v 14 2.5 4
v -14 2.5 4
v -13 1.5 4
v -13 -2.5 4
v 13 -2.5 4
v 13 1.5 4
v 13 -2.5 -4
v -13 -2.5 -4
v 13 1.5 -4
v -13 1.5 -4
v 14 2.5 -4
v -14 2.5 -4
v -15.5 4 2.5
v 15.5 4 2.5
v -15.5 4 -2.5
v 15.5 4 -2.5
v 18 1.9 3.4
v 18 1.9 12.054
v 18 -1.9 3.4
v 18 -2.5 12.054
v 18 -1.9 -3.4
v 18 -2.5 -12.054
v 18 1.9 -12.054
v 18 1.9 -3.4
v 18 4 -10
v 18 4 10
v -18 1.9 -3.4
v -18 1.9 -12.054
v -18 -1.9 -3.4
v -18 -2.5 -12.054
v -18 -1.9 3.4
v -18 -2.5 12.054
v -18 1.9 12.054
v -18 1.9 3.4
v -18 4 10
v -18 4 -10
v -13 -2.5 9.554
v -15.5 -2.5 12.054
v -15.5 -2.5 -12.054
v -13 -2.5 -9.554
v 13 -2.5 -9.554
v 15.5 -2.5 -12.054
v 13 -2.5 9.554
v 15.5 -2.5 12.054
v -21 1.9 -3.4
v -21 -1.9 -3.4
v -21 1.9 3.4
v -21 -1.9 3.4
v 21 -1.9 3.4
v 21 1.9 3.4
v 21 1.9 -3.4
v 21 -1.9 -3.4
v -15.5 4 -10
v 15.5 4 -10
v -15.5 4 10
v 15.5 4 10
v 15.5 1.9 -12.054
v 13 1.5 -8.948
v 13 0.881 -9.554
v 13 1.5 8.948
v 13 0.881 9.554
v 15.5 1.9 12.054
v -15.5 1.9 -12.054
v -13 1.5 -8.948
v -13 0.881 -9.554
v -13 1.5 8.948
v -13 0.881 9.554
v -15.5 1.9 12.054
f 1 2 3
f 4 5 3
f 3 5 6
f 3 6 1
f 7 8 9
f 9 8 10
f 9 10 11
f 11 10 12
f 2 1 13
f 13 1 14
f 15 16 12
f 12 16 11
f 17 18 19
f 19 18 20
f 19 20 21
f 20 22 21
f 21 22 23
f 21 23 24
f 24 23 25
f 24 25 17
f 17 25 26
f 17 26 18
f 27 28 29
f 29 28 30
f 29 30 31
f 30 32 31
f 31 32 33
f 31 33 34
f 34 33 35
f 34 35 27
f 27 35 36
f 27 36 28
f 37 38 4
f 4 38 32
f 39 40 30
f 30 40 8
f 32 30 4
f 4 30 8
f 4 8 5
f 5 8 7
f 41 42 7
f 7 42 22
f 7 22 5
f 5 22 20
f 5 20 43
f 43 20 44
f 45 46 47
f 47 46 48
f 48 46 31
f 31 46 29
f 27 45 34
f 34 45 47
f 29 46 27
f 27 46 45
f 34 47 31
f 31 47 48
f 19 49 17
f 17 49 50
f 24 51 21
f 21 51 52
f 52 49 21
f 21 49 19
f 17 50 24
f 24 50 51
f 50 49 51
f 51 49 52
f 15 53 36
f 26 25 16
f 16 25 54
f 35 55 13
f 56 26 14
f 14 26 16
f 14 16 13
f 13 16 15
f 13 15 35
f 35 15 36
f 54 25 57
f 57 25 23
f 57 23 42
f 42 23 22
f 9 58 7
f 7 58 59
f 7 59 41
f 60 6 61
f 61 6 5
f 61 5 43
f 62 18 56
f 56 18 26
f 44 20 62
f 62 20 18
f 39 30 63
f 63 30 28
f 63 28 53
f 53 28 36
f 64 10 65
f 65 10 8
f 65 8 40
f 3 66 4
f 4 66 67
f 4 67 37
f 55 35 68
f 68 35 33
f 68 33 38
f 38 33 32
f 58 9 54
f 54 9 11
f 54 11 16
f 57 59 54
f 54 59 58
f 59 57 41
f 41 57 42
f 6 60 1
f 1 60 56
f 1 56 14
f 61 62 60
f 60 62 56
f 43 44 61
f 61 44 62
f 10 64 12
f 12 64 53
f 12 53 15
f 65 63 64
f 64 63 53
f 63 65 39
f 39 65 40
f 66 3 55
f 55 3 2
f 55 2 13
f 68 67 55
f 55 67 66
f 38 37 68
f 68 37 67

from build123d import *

# Parameters (mm, degrees)
BOSS_EXTRUDE1_DEPTH      = 2.5
BOSS_EXTRUDE1_DEPTH_BACK = 2.5
SKETCH1_W                = 36
SKETCH1_H                = 8
BOSS_EXTRUDE2_DEPTH      = 1.9
BOSS_EXTRUDE2_DEPTH_BACK = 1.9
SKETCH2_W                = 42
SKETCH2_H                = 6.8
BOSS_EXTRUDE4_DEPTH      = 18
BOSS_EXTRUDE4_DEPTH_BACK = 18
BOSS_EXTRUDE5_DEPTH      = 5
CHAMFER1_SIZE            = 2.5


with BuildPart() as part:
    # Sketch1 → Boss-Extrude1 (new, two sides: drawn at the far end of the back side and taken through both)
    with BuildSketch(Plane(origin=(0, 0, 0), x_dir=(1, 0, 0), z_dir=(0, 1, 0)).offset(-BOSS_EXTRUDE1_DEPTH_BACK)):
        Rectangle(SKETCH1_W, SKETCH1_H)
    extrude(amount=BOSS_EXTRUDE1_DEPTH + BOSS_EXTRUDE1_DEPTH_BACK)

    # Sketch2 → Boss-Extrude2 (add, two sides: drawn at the far end of the back side and taken through both)
    with BuildSketch(Plane(origin=(0, 0, 0), x_dir=(1, 0, 0), z_dir=(0, 1, 0)).offset(-BOSS_EXTRUDE2_DEPTH_BACK)):
        Rectangle(SKETCH2_W, SKETCH2_H)
    extrude(amount=BOSS_EXTRUDE2_DEPTH + BOSS_EXTRUDE2_DEPTH_BACK)

    # Sketch3 → Boss-Extrude4 (add, two sides: drawn at the far end of the back side and taken through both)
    with BuildSketch(Plane(origin=(0, 0, 0), x_dir=(0, 0, -1), z_dir=(1, 0, 0)).offset(-BOSS_EXTRUDE4_DEPTH_BACK)):
        Polygon((-4, 2.5), (-2.5, 4), (2.5, 4), (4, 2.5), align=None)
    extrude(amount=BOSS_EXTRUDE4_DEPTH + BOSS_EXTRUDE4_DEPTH_BACK)

    # Sketch4 → Boss-Extrude5 (add)
    with BuildSketch(Plane(origin=(18, 0, 0), x_dir=(0, 0, -1), z_dir=(1, 0, 0))):
        Polygon((10, 4), (-10, 4), (-12.054026971, 1.9), (-12.054026971, -2.5), (12.054026971, -2.5), (12.054026971, 1.9), align=None)
    boss_extrude5 = extrude(amount=-BOSS_EXTRUDE5_DEPTH)

    # Mirror1: Boss-Extrude5 across plane
    add(boss_extrude5.mirror(Plane(origin=(0, 0, 0), x_dir=(0, 0, 1), z_dir=(1, 0, 0))))

    # Chamfer1
    # the kernel refuses this chamfer: 2.5 mm, written as the material it takes off along each edge
    with BuildSketch(Plane(origin=(13, -8.92920747, -12.054026971), x_dir=(-0.027495876610586317, 0, 0.9996219169112968), z_dir=(0, 1, 0)), Plane(origin=(13, 8.32920747, 12.054026971), x_dir=(-0.027495876610586317, 0, -0.9996219169112968), z_dir=(0, -1, 0))) as chamfer1_piece_1:
        Polygon((CHAMFER1_SIZE * 0.999621916911, CHAMFER1_SIZE * 0.0274958766106), (-CHAMFER1_SIZE * 0.0274958766106, CHAMFER1_SIZE * 0.999621916911), (0, 0), align=None)
    extrude(amount=17.25841494, mode=Mode.SUBTRACT)
    with BuildSketch(Plane(origin=(13, 4, -16.42920747), x_dir=(-0.027495876610586317, -0.9996219169112968, 0), z_dir=(0, 0, 1))) as chamfer1_piece_2_section:
        Polygon((CHAMFER1_SIZE * 0.999621916911, CHAMFER1_SIZE * 0.0274958766106), (-CHAMFER1_SIZE * 0.0274958766106, CHAMFER1_SIZE * 0.999621916911), (0, 0), align=None)
    chamfer1_piece_2 = extrude(amount=20.35841494, mode=Mode.PRIVATE)
    chamfer1_piece_2 = split(chamfer1_piece_2, bisect_by=Plane(origin=(13.827805958, -0.281636431, -6.781636431), z_dir=(0, 0.7071067811865474, -0.7071067811865478)), keep=Keep.TOP, mode=Mode.PRIVATE)
    chamfer1_piece_2 = split(chamfer1_piece_2, bisect_by=Plane(origin=(13.827805958, 3.181857543, -4), z_dir=(0, 0, -1)), keep=Keep.TOP, mode=Mode.PRIVATE)
    add(chamfer1_piece_2, mode=Mode.SUBTRACT)
    with BuildSketch(Plane(origin=(13, 4, -16.42920747), x_dir=(-0.027495876610586317, -0.9996219169112968, 0), z_dir=(0, 0, 1))) as chamfer1_piece_3_section:
        Polygon((CHAMFER1_SIZE * 0.999621916911, CHAMFER1_SIZE * 0.0274958766106), (-CHAMFER1_SIZE * 0.0274958766106, CHAMFER1_SIZE * 0.999621916911), (0, 0), align=None)
    chamfer1_piece_3 = extrude(amount=20.35841494, mode=Mode.PRIVATE)
    chamfer1_piece_3 = split(chamfer1_piece_3, bisect_by=Plane(origin=(14.055981956, 3.329802403, -3.170197597), z_dir=(0, 0.7071067811865474, -0.7071067811865478)), keep=Keep.TOP, mode=Mode.PRIVATE)
    chamfer1_piece_3 = split(chamfer1_piece_3, bisect_by=Plane(origin=(14.055981956, 3.606403204, -4), z_dir=(0, 0, 1)), keep=Keep.TOP, mode=Mode.PRIVATE)
    add(chamfer1_piece_3, mode=Mode.SUBTRACT)
    with BuildSketch(Plane(origin=(13, 4, -16.42920747), x_dir=(-0.027495876610586317, -0.9996219169112968, 0), z_dir=(0, 0, 1))) as chamfer1_piece_4_section:
        Polygon((CHAMFER1_SIZE * 0.999621916911, CHAMFER1_SIZE * 0.0274958766106), (-CHAMFER1_SIZE * 0.0274958766106, CHAMFER1_SIZE * 0.999621916911), (0, 0), align=None)
    chamfer1_piece_4 = extrude(amount=20.35841494, mode=Mode.PRIVATE)
    chamfer1_piece_4 = split(chamfer1_piece_4, bisect_by=Plane(origin=(13.178553406, 2.081808313, -4.418191687), z_dir=(0, -0.7071067811865474, 0.7071067811865478)), keep=Keep.TOP, mode=Mode.PRIVATE)
    chamfer1_piece_4 = split(chamfer1_piece_4, bisect_by=Plane(origin=(13.178553406, 1.942411084, -4), z_dir=(0, 0, -1)), keep=Keep.TOP, mode=Mode.PRIVATE)
    add(chamfer1_piece_4, mode=Mode.SUBTRACT)
    with BuildSketch(Plane(origin=(13, 4, -16.42920747), x_dir=(-0.027495876610586317, -0.9996219169112968, 0), z_dir=(0, 0, 1))) as chamfer1_piece_5_section:
        Polygon((CHAMFER1_SIZE * 0.999621916911, CHAMFER1_SIZE * 0.0274958766106), (-CHAMFER1_SIZE * 0.0274958766106, CHAMFER1_SIZE * 0.999621916911), (0, 0), align=None)
    chamfer1_piece_5 = extrude(amount=20.35841494, mode=Mode.PRIVATE)
    chamfer1_piece_5 = split(chamfer1_piece_5, bisect_by=Plane(origin=(14.06552613, 3.360440838, 3.139559162), z_dir=(0, 0.7071067811865476, 0.7071067811865476)), keep=Keep.TOP, mode=Mode.PRIVATE)
    add(chamfer1_piece_5, mode=Mode.SUBTRACT)
    with BuildSketch(Plane(origin=(13, 4, -3.92920747), x_dir=(-0.027495876610586317, -0.9996219169112968, 0), z_dir=(0, 0, 1))) as chamfer1_piece_6_section:
        Polygon((CHAMFER1_SIZE * 0.999621916911, CHAMFER1_SIZE * 0.0274958766106), (-CHAMFER1_SIZE * 0.0274958766106, CHAMFER1_SIZE * 0.999621916911), (0, 0), align=None)
    chamfer1_piece_6 = extrude(amount=20.35841494, mode=Mode.PRIVATE)
    chamfer1_piece_6 = split(chamfer1_piece_6, bisect_by=Plane(origin=(14.06552613, 3.360440838, -3.139559162), z_dir=(0, 0.7071067811865474, -0.7071067811865478)), keep=Keep.TOP, mode=Mode.PRIVATE)
    add(chamfer1_piece_6, mode=Mode.SUBTRACT)
    with BuildSketch(Plane(origin=(13, 4, -3.92920747), x_dir=(-0.027495876610586317, -0.9996219169112968, 0), z_dir=(0, 0, 1))) as chamfer1_piece_7_section:
        Polygon((CHAMFER1_SIZE * 0.999621916911, CHAMFER1_SIZE * 0.0274958766106), (-CHAMFER1_SIZE * 0.0274958766106, CHAMFER1_SIZE * 0.999621916911), (0, 0), align=None)
    chamfer1_piece_7 = extrude(amount=20.35841494, mode=Mode.PRIVATE)
    chamfer1_piece_7 = split(chamfer1_piece_7, bisect_by=Plane(origin=(14.055981956, 3.329802403, 3.170197597), z_dir=(0, 0.7071067811865476, 0.7071067811865476)), keep=Keep.TOP, mode=Mode.PRIVATE)
    chamfer1_piece_7 = split(chamfer1_piece_7, bisect_by=Plane(origin=(14.055981956, 3.606403204, 4), z_dir=(0, 0, -1)), keep=Keep.TOP, mode=Mode.PRIVATE)
    add(chamfer1_piece_7, mode=Mode.SUBTRACT)
    with BuildSketch(Plane(origin=(13, 4, -3.92920747), x_dir=(-0.027495876610586317, -0.9996219169112968, 0), z_dir=(0, 0, 1))) as chamfer1_piece_8_section:
        Polygon((CHAMFER1_SIZE * 0.999621916911, CHAMFER1_SIZE * 0.0274958766106), (-CHAMFER1_SIZE * 0.0274958766106, CHAMFER1_SIZE * 0.999621916911), (0, 0), align=None)
    chamfer1_piece_8 = extrude(amount=20.35841494, mode=Mode.PRIVATE)
    chamfer1_piece_8 = split(chamfer1_piece_8, bisect_by=Plane(origin=(13.178553406, 2.081808313, 4.418191687), z_dir=(0, -0.7071067811865476, -0.7071067811865476)), keep=Keep.TOP, mode=Mode.PRIVATE)
    chamfer1_piece_8 = split(chamfer1_piece_8, bisect_by=Plane(origin=(13.178553406, 1.942411084, 4), z_dir=(0, 0, 1)), keep=Keep.TOP, mode=Mode.PRIVATE)
    add(chamfer1_piece_8, mode=Mode.SUBTRACT)
    with BuildSketch(Plane(origin=(13, 4, -3.92920747), x_dir=(-0.027495876610586317, -0.9996219169112968, 0), z_dir=(0, 0, 1))) as chamfer1_piece_9_section:
        Polygon((CHAMFER1_SIZE * 0.999621916911, CHAMFER1_SIZE * 0.0274958766106), (-CHAMFER1_SIZE * 0.0274958766106, CHAMFER1_SIZE * 0.999621916911), (0, 0), align=None)
    chamfer1_piece_9 = extrude(amount=20.35841494, mode=Mode.PRIVATE)
    chamfer1_piece_9 = split(chamfer1_piece_9, bisect_by=Plane(origin=(13.827805958, -0.281636431, 6.781636431), z_dir=(0, 0.7071067811865476, 0.7071067811865476)), keep=Keep.TOP, mode=Mode.PRIVATE)
    chamfer1_piece_9 = split(chamfer1_piece_9, bisect_by=Plane(origin=(13.827805958, 3.181857543, 4), z_dir=(0, 0, 1)), keep=Keep.TOP, mode=Mode.PRIVATE)
    add(chamfer1_piece_9, mode=Mode.SUBTRACT)
    with BuildSketch(Plane(origin=(-13, -8.92920747, -12.054026971), x_dir=(0.027495876610586317, 0, 0.9996219169112968), z_dir=(0, 1, 0)), Plane(origin=(-13, 8.32920747, 12.054026971), x_dir=(0.027495876610586317, 0, -0.9996219169112968), z_dir=(0, -1, 0))) as chamfer1_piece_10:
        Polygon((CHAMFER1_SIZE * 0.999621916911, -CHAMFER1_SIZE * 0.0274958766106), (-CHAMFER1_SIZE * 0.0274958766106, -CHAMFER1_SIZE * 0.999621916911), (0, 0), align=None)
    extrude(amount=17.25841494, mode=Mode.SUBTRACT)
    with BuildSketch(Plane(origin=(-13, 4, -16.42920747), x_dir=(0.027495876610586317, -0.9996219169112968, 0), z_dir=(0, 0, 1))) as chamfer1_piece_11_section:
        Polygon((CHAMFER1_SIZE * 0.999621916911, -CHAMFER1_SIZE * 0.0274958766106), (-CHAMFER1_SIZE * 0.0274958766106, -CHAMFER1_SIZE * 0.999621916911), (0, 0), align=None)
    chamfer1_piece_11 = extrude(amount=20.35841494, mode=Mode.PRIVATE)
    chamfer1_piece_11 = split(chamfer1_piece_11, bisect_by=Plane(origin=(-13.827805958, 3.181857543, -4), z_dir=(0, 0, -1)), keep=Keep.TOP, mode=Mode.PRIVATE)
    chamfer1_piece_11 = split(chamfer1_piece_11, bisect_by=Plane(origin=(-13.827805958, -0.281636431, -6.781636431), z_dir=(0, 0.7071067811865474, -0.7071067811865478)), keep=Keep.TOP, mode=Mode.PRIVATE)
    add(chamfer1_piece_11, mode=Mode.SUBTRACT)
    with BuildSketch(Plane(origin=(-13, 4, -16.42920747), x_dir=(0.027495876610586317, -0.9996219169112968, 0), z_dir=(0, 0, 1))) as chamfer1_piece_12_section:
        Polygon((CHAMFER1_SIZE * 0.999621916911, -CHAMFER1_SIZE * 0.0274958766106), (-CHAMFER1_SIZE * 0.0274958766106, -CHAMFER1_SIZE * 0.999621916911), (0, 0), align=None)
    chamfer1_piece_12 = extrude(amount=20.35841494, mode=Mode.PRIVATE)
    chamfer1_piece_12 = split(chamfer1_piece_12, bisect_by=Plane(origin=(-14.055981956, 3.606403204, -4), z_dir=(0, 0, 1)), keep=Keep.TOP, mode=Mode.PRIVATE)
    chamfer1_piece_12 = split(chamfer1_piece_12, bisect_by=Plane(origin=(-14.055981956, 3.329802403, -3.170197597), z_dir=(0, 0.7071067811865474, -0.7071067811865478)), keep=Keep.TOP, mode=Mode.PRIVATE)
    add(chamfer1_piece_12, mode=Mode.SUBTRACT)
    with BuildSketch(Plane(origin=(-13, 4, -16.42920747), x_dir=(0.027495876610586317, -0.9996219169112968, 0), z_dir=(0, 0, 1))) as chamfer1_piece_13_section:
        Polygon((CHAMFER1_SIZE * 0.999621916911, -CHAMFER1_SIZE * 0.0274958766106), (-CHAMFER1_SIZE * 0.0274958766106, -CHAMFER1_SIZE * 0.999621916911), (0, 0), align=None)
    chamfer1_piece_13 = extrude(amount=20.35841494, mode=Mode.PRIVATE)
    chamfer1_piece_13 = split(chamfer1_piece_13, bisect_by=Plane(origin=(-13.178553406, 1.942411084, -4), z_dir=(0, 0, -1)), keep=Keep.TOP, mode=Mode.PRIVATE)
    chamfer1_piece_13 = split(chamfer1_piece_13, bisect_by=Plane(origin=(-13.178553406, 2.081808313, -4.418191687), z_dir=(0, -0.7071067811865474, 0.7071067811865478)), keep=Keep.TOP, mode=Mode.PRIVATE)
    add(chamfer1_piece_13, mode=Mode.SUBTRACT)
    with BuildSketch(Plane(origin=(-13, 4, -16.42920747), x_dir=(0.027495876610586317, -0.9996219169112968, 0), z_dir=(0, 0, 1))) as chamfer1_piece_14_section:
        Polygon((CHAMFER1_SIZE * 0.999621916911, -CHAMFER1_SIZE * 0.0274958766106), (-CHAMFER1_SIZE * 0.0274958766106, -CHAMFER1_SIZE * 0.999621916911), (0, 0), align=None)
    chamfer1_piece_14 = extrude(amount=20.35841494, mode=Mode.PRIVATE)
    chamfer1_piece_14 = split(chamfer1_piece_14, bisect_by=Plane(origin=(-14.06552613, 3.360440838, 3.139559162), z_dir=(0, 0.7071067811865476, 0.7071067811865476)), keep=Keep.TOP, mode=Mode.PRIVATE)
    add(chamfer1_piece_14, mode=Mode.SUBTRACT)
    with BuildSketch(Plane(origin=(-13, 4, -3.92920747), x_dir=(0.027495876610586317, -0.9996219169112968, 0), z_dir=(0, 0, 1))) as chamfer1_piece_15_section:
        Polygon((CHAMFER1_SIZE * 0.999621916911, -CHAMFER1_SIZE * 0.0274958766106), (-CHAMFER1_SIZE * 0.0274958766106, -CHAMFER1_SIZE * 0.999621916911), (0, 0), align=None)
    chamfer1_piece_15 = extrude(amount=20.35841494, mode=Mode.PRIVATE)
    chamfer1_piece_15 = split(chamfer1_piece_15, bisect_by=Plane(origin=(-14.06552613, 3.360440838, -3.139559162), z_dir=(0, 0.7071067811865474, -0.7071067811865478)), keep=Keep.TOP, mode=Mode.PRIVATE)
    add(chamfer1_piece_15, mode=Mode.SUBTRACT)
    with BuildSketch(Plane(origin=(-13, 4, -3.92920747), x_dir=(0.027495876610586317, -0.9996219169112968, 0), z_dir=(0, 0, 1))) as chamfer1_piece_16_section:
        Polygon((CHAMFER1_SIZE * 0.999621916911, -CHAMFER1_SIZE * 0.0274958766106), (-CHAMFER1_SIZE * 0.0274958766106, -CHAMFER1_SIZE * 0.999621916911), (0, 0), align=None)
    chamfer1_piece_16 = extrude(amount=20.35841494, mode=Mode.PRIVATE)
    chamfer1_piece_16 = split(chamfer1_piece_16, bisect_by=Plane(origin=(-14.055981956, 3.606403204, 4), z_dir=(0, 0, -1)), keep=Keep.TOP, mode=Mode.PRIVATE)
    chamfer1_piece_16 = split(chamfer1_piece_16, bisect_by=Plane(origin=(-14.055981956, 3.329802403, 3.170197597), z_dir=(0, 0.7071067811865476, 0.7071067811865476)), keep=Keep.TOP, mode=Mode.PRIVATE)
    add(chamfer1_piece_16, mode=Mode.SUBTRACT)
    with BuildSketch(Plane(origin=(-13, 4, -3.92920747), x_dir=(0.027495876610586317, -0.9996219169112968, 0), z_dir=(0, 0, 1))) as chamfer1_piece_17_section:
        Polygon((CHAMFER1_SIZE * 0.999621916911, -CHAMFER1_SIZE * 0.0274958766106), (-CHAMFER1_SIZE * 0.0274958766106, -CHAMFER1_SIZE * 0.999621916911), (0, 0), align=None)
    chamfer1_piece_17 = extrude(amount=20.35841494, mode=Mode.PRIVATE)
    chamfer1_piece_17 = split(chamfer1_piece_17, bisect_by=Plane(origin=(-13.178553406, 1.942411084, 4), z_dir=(0, 0, 1)), keep=Keep.TOP, mode=Mode.PRIVATE)
    chamfer1_piece_17 = split(chamfer1_piece_17, bisect_by=Plane(origin=(-13.178553406, 2.081808313, 4.418191687), z_dir=(0, -0.7071067811865476, -0.7071067811865476)), keep=Keep.TOP, mode=Mode.PRIVATE)
    add(chamfer1_piece_17, mode=Mode.SUBTRACT)
    with BuildSketch(Plane(origin=(-13, 4, -3.92920747), x_dir=(0.027495876610586317, -0.9996219169112968, 0), z_dir=(0, 0, 1))) as chamfer1_piece_18_section:
        Polygon((CHAMFER1_SIZE * 0.999621916911, -CHAMFER1_SIZE * 0.0274958766106), (-CHAMFER1_SIZE * 0.0274958766106, -CHAMFER1_SIZE * 0.999621916911), (0, 0), align=None)
    chamfer1_piece_18 = extrude(amount=20.35841494, mode=Mode.PRIVATE)
    chamfer1_piece_18 = split(chamfer1_piece_18, bisect_by=Plane(origin=(-13.827805958, 3.181857543, 4), z_dir=(0, 0, 1)), keep=Keep.TOP, mode=Mode.PRIVATE)
    chamfer1_piece_18 = split(chamfer1_piece_18, bisect_by=Plane(origin=(-13.827805958, -0.281636431, 6.781636431), z_dir=(0, 0.7071067811865476, 0.7071067811865476)), keep=Keep.TOP, mode=Mode.PRIVATE)
    add(chamfer1_piece_18, mode=Mode.SUBTRACT)
    with BuildSketch(Plane(origin=(13, -2.696167278, -16.54957533), x_dir=(-0.027495876610586303, -0.6989739698056905, 0.7146183361092052), z_dir=(0, 0.7148886234080223, 0.6992383399970165)), Plane(origin=(-13, -2.696167278, -16.54957533), x_dir=(-0.9996219169112968, 0.01922617111794918, -0.019656489379538903), z_dir=(0, 0.7148886234080223, 0.6992383399970165))) as chamfer1_piece_19:
        Polygon((CHAMFER1_SIZE * 0.999621916911, CHAMFER1_SIZE * 0.0274958766106), (-CHAMFER1_SIZE * 0.0274958766106, CHAMFER1_SIZE * 0.999621916911), (0, 0), align=None)
    extrude(amount=15.795935459, mode=Mode.SUBTRACT)
    with BuildSketch(Plane(origin=(13, 8.596167278, 5.504451641), x_dir=(0.9996219169112968, 0.01922617111794934, 0.019656489379539066), z_dir=(0, -0.7148886234080223, 0.6992383399970165)), Plane(origin=(-13, 8.596167278, 5.504451641), x_dir=(0.02749587661058631, -0.6989739698056905, -0.7146183361092052), z_dir=(0, -0.7148886234080223, 0.6992383399970165))) as chamfer1_piece_20:
        Polygon((CHAMFER1_SIZE * 0.999621916911, -CHAMFER1_SIZE * 0.0274958766106), (-CHAMFER1_SIZE * 0.0274958766106, -CHAMFER1_SIZE * 0.999621916911), (0, 0), align=None)
    extrude(amount=15.795935459, mode=Mode.SUBTRACT)


solid = part.part
